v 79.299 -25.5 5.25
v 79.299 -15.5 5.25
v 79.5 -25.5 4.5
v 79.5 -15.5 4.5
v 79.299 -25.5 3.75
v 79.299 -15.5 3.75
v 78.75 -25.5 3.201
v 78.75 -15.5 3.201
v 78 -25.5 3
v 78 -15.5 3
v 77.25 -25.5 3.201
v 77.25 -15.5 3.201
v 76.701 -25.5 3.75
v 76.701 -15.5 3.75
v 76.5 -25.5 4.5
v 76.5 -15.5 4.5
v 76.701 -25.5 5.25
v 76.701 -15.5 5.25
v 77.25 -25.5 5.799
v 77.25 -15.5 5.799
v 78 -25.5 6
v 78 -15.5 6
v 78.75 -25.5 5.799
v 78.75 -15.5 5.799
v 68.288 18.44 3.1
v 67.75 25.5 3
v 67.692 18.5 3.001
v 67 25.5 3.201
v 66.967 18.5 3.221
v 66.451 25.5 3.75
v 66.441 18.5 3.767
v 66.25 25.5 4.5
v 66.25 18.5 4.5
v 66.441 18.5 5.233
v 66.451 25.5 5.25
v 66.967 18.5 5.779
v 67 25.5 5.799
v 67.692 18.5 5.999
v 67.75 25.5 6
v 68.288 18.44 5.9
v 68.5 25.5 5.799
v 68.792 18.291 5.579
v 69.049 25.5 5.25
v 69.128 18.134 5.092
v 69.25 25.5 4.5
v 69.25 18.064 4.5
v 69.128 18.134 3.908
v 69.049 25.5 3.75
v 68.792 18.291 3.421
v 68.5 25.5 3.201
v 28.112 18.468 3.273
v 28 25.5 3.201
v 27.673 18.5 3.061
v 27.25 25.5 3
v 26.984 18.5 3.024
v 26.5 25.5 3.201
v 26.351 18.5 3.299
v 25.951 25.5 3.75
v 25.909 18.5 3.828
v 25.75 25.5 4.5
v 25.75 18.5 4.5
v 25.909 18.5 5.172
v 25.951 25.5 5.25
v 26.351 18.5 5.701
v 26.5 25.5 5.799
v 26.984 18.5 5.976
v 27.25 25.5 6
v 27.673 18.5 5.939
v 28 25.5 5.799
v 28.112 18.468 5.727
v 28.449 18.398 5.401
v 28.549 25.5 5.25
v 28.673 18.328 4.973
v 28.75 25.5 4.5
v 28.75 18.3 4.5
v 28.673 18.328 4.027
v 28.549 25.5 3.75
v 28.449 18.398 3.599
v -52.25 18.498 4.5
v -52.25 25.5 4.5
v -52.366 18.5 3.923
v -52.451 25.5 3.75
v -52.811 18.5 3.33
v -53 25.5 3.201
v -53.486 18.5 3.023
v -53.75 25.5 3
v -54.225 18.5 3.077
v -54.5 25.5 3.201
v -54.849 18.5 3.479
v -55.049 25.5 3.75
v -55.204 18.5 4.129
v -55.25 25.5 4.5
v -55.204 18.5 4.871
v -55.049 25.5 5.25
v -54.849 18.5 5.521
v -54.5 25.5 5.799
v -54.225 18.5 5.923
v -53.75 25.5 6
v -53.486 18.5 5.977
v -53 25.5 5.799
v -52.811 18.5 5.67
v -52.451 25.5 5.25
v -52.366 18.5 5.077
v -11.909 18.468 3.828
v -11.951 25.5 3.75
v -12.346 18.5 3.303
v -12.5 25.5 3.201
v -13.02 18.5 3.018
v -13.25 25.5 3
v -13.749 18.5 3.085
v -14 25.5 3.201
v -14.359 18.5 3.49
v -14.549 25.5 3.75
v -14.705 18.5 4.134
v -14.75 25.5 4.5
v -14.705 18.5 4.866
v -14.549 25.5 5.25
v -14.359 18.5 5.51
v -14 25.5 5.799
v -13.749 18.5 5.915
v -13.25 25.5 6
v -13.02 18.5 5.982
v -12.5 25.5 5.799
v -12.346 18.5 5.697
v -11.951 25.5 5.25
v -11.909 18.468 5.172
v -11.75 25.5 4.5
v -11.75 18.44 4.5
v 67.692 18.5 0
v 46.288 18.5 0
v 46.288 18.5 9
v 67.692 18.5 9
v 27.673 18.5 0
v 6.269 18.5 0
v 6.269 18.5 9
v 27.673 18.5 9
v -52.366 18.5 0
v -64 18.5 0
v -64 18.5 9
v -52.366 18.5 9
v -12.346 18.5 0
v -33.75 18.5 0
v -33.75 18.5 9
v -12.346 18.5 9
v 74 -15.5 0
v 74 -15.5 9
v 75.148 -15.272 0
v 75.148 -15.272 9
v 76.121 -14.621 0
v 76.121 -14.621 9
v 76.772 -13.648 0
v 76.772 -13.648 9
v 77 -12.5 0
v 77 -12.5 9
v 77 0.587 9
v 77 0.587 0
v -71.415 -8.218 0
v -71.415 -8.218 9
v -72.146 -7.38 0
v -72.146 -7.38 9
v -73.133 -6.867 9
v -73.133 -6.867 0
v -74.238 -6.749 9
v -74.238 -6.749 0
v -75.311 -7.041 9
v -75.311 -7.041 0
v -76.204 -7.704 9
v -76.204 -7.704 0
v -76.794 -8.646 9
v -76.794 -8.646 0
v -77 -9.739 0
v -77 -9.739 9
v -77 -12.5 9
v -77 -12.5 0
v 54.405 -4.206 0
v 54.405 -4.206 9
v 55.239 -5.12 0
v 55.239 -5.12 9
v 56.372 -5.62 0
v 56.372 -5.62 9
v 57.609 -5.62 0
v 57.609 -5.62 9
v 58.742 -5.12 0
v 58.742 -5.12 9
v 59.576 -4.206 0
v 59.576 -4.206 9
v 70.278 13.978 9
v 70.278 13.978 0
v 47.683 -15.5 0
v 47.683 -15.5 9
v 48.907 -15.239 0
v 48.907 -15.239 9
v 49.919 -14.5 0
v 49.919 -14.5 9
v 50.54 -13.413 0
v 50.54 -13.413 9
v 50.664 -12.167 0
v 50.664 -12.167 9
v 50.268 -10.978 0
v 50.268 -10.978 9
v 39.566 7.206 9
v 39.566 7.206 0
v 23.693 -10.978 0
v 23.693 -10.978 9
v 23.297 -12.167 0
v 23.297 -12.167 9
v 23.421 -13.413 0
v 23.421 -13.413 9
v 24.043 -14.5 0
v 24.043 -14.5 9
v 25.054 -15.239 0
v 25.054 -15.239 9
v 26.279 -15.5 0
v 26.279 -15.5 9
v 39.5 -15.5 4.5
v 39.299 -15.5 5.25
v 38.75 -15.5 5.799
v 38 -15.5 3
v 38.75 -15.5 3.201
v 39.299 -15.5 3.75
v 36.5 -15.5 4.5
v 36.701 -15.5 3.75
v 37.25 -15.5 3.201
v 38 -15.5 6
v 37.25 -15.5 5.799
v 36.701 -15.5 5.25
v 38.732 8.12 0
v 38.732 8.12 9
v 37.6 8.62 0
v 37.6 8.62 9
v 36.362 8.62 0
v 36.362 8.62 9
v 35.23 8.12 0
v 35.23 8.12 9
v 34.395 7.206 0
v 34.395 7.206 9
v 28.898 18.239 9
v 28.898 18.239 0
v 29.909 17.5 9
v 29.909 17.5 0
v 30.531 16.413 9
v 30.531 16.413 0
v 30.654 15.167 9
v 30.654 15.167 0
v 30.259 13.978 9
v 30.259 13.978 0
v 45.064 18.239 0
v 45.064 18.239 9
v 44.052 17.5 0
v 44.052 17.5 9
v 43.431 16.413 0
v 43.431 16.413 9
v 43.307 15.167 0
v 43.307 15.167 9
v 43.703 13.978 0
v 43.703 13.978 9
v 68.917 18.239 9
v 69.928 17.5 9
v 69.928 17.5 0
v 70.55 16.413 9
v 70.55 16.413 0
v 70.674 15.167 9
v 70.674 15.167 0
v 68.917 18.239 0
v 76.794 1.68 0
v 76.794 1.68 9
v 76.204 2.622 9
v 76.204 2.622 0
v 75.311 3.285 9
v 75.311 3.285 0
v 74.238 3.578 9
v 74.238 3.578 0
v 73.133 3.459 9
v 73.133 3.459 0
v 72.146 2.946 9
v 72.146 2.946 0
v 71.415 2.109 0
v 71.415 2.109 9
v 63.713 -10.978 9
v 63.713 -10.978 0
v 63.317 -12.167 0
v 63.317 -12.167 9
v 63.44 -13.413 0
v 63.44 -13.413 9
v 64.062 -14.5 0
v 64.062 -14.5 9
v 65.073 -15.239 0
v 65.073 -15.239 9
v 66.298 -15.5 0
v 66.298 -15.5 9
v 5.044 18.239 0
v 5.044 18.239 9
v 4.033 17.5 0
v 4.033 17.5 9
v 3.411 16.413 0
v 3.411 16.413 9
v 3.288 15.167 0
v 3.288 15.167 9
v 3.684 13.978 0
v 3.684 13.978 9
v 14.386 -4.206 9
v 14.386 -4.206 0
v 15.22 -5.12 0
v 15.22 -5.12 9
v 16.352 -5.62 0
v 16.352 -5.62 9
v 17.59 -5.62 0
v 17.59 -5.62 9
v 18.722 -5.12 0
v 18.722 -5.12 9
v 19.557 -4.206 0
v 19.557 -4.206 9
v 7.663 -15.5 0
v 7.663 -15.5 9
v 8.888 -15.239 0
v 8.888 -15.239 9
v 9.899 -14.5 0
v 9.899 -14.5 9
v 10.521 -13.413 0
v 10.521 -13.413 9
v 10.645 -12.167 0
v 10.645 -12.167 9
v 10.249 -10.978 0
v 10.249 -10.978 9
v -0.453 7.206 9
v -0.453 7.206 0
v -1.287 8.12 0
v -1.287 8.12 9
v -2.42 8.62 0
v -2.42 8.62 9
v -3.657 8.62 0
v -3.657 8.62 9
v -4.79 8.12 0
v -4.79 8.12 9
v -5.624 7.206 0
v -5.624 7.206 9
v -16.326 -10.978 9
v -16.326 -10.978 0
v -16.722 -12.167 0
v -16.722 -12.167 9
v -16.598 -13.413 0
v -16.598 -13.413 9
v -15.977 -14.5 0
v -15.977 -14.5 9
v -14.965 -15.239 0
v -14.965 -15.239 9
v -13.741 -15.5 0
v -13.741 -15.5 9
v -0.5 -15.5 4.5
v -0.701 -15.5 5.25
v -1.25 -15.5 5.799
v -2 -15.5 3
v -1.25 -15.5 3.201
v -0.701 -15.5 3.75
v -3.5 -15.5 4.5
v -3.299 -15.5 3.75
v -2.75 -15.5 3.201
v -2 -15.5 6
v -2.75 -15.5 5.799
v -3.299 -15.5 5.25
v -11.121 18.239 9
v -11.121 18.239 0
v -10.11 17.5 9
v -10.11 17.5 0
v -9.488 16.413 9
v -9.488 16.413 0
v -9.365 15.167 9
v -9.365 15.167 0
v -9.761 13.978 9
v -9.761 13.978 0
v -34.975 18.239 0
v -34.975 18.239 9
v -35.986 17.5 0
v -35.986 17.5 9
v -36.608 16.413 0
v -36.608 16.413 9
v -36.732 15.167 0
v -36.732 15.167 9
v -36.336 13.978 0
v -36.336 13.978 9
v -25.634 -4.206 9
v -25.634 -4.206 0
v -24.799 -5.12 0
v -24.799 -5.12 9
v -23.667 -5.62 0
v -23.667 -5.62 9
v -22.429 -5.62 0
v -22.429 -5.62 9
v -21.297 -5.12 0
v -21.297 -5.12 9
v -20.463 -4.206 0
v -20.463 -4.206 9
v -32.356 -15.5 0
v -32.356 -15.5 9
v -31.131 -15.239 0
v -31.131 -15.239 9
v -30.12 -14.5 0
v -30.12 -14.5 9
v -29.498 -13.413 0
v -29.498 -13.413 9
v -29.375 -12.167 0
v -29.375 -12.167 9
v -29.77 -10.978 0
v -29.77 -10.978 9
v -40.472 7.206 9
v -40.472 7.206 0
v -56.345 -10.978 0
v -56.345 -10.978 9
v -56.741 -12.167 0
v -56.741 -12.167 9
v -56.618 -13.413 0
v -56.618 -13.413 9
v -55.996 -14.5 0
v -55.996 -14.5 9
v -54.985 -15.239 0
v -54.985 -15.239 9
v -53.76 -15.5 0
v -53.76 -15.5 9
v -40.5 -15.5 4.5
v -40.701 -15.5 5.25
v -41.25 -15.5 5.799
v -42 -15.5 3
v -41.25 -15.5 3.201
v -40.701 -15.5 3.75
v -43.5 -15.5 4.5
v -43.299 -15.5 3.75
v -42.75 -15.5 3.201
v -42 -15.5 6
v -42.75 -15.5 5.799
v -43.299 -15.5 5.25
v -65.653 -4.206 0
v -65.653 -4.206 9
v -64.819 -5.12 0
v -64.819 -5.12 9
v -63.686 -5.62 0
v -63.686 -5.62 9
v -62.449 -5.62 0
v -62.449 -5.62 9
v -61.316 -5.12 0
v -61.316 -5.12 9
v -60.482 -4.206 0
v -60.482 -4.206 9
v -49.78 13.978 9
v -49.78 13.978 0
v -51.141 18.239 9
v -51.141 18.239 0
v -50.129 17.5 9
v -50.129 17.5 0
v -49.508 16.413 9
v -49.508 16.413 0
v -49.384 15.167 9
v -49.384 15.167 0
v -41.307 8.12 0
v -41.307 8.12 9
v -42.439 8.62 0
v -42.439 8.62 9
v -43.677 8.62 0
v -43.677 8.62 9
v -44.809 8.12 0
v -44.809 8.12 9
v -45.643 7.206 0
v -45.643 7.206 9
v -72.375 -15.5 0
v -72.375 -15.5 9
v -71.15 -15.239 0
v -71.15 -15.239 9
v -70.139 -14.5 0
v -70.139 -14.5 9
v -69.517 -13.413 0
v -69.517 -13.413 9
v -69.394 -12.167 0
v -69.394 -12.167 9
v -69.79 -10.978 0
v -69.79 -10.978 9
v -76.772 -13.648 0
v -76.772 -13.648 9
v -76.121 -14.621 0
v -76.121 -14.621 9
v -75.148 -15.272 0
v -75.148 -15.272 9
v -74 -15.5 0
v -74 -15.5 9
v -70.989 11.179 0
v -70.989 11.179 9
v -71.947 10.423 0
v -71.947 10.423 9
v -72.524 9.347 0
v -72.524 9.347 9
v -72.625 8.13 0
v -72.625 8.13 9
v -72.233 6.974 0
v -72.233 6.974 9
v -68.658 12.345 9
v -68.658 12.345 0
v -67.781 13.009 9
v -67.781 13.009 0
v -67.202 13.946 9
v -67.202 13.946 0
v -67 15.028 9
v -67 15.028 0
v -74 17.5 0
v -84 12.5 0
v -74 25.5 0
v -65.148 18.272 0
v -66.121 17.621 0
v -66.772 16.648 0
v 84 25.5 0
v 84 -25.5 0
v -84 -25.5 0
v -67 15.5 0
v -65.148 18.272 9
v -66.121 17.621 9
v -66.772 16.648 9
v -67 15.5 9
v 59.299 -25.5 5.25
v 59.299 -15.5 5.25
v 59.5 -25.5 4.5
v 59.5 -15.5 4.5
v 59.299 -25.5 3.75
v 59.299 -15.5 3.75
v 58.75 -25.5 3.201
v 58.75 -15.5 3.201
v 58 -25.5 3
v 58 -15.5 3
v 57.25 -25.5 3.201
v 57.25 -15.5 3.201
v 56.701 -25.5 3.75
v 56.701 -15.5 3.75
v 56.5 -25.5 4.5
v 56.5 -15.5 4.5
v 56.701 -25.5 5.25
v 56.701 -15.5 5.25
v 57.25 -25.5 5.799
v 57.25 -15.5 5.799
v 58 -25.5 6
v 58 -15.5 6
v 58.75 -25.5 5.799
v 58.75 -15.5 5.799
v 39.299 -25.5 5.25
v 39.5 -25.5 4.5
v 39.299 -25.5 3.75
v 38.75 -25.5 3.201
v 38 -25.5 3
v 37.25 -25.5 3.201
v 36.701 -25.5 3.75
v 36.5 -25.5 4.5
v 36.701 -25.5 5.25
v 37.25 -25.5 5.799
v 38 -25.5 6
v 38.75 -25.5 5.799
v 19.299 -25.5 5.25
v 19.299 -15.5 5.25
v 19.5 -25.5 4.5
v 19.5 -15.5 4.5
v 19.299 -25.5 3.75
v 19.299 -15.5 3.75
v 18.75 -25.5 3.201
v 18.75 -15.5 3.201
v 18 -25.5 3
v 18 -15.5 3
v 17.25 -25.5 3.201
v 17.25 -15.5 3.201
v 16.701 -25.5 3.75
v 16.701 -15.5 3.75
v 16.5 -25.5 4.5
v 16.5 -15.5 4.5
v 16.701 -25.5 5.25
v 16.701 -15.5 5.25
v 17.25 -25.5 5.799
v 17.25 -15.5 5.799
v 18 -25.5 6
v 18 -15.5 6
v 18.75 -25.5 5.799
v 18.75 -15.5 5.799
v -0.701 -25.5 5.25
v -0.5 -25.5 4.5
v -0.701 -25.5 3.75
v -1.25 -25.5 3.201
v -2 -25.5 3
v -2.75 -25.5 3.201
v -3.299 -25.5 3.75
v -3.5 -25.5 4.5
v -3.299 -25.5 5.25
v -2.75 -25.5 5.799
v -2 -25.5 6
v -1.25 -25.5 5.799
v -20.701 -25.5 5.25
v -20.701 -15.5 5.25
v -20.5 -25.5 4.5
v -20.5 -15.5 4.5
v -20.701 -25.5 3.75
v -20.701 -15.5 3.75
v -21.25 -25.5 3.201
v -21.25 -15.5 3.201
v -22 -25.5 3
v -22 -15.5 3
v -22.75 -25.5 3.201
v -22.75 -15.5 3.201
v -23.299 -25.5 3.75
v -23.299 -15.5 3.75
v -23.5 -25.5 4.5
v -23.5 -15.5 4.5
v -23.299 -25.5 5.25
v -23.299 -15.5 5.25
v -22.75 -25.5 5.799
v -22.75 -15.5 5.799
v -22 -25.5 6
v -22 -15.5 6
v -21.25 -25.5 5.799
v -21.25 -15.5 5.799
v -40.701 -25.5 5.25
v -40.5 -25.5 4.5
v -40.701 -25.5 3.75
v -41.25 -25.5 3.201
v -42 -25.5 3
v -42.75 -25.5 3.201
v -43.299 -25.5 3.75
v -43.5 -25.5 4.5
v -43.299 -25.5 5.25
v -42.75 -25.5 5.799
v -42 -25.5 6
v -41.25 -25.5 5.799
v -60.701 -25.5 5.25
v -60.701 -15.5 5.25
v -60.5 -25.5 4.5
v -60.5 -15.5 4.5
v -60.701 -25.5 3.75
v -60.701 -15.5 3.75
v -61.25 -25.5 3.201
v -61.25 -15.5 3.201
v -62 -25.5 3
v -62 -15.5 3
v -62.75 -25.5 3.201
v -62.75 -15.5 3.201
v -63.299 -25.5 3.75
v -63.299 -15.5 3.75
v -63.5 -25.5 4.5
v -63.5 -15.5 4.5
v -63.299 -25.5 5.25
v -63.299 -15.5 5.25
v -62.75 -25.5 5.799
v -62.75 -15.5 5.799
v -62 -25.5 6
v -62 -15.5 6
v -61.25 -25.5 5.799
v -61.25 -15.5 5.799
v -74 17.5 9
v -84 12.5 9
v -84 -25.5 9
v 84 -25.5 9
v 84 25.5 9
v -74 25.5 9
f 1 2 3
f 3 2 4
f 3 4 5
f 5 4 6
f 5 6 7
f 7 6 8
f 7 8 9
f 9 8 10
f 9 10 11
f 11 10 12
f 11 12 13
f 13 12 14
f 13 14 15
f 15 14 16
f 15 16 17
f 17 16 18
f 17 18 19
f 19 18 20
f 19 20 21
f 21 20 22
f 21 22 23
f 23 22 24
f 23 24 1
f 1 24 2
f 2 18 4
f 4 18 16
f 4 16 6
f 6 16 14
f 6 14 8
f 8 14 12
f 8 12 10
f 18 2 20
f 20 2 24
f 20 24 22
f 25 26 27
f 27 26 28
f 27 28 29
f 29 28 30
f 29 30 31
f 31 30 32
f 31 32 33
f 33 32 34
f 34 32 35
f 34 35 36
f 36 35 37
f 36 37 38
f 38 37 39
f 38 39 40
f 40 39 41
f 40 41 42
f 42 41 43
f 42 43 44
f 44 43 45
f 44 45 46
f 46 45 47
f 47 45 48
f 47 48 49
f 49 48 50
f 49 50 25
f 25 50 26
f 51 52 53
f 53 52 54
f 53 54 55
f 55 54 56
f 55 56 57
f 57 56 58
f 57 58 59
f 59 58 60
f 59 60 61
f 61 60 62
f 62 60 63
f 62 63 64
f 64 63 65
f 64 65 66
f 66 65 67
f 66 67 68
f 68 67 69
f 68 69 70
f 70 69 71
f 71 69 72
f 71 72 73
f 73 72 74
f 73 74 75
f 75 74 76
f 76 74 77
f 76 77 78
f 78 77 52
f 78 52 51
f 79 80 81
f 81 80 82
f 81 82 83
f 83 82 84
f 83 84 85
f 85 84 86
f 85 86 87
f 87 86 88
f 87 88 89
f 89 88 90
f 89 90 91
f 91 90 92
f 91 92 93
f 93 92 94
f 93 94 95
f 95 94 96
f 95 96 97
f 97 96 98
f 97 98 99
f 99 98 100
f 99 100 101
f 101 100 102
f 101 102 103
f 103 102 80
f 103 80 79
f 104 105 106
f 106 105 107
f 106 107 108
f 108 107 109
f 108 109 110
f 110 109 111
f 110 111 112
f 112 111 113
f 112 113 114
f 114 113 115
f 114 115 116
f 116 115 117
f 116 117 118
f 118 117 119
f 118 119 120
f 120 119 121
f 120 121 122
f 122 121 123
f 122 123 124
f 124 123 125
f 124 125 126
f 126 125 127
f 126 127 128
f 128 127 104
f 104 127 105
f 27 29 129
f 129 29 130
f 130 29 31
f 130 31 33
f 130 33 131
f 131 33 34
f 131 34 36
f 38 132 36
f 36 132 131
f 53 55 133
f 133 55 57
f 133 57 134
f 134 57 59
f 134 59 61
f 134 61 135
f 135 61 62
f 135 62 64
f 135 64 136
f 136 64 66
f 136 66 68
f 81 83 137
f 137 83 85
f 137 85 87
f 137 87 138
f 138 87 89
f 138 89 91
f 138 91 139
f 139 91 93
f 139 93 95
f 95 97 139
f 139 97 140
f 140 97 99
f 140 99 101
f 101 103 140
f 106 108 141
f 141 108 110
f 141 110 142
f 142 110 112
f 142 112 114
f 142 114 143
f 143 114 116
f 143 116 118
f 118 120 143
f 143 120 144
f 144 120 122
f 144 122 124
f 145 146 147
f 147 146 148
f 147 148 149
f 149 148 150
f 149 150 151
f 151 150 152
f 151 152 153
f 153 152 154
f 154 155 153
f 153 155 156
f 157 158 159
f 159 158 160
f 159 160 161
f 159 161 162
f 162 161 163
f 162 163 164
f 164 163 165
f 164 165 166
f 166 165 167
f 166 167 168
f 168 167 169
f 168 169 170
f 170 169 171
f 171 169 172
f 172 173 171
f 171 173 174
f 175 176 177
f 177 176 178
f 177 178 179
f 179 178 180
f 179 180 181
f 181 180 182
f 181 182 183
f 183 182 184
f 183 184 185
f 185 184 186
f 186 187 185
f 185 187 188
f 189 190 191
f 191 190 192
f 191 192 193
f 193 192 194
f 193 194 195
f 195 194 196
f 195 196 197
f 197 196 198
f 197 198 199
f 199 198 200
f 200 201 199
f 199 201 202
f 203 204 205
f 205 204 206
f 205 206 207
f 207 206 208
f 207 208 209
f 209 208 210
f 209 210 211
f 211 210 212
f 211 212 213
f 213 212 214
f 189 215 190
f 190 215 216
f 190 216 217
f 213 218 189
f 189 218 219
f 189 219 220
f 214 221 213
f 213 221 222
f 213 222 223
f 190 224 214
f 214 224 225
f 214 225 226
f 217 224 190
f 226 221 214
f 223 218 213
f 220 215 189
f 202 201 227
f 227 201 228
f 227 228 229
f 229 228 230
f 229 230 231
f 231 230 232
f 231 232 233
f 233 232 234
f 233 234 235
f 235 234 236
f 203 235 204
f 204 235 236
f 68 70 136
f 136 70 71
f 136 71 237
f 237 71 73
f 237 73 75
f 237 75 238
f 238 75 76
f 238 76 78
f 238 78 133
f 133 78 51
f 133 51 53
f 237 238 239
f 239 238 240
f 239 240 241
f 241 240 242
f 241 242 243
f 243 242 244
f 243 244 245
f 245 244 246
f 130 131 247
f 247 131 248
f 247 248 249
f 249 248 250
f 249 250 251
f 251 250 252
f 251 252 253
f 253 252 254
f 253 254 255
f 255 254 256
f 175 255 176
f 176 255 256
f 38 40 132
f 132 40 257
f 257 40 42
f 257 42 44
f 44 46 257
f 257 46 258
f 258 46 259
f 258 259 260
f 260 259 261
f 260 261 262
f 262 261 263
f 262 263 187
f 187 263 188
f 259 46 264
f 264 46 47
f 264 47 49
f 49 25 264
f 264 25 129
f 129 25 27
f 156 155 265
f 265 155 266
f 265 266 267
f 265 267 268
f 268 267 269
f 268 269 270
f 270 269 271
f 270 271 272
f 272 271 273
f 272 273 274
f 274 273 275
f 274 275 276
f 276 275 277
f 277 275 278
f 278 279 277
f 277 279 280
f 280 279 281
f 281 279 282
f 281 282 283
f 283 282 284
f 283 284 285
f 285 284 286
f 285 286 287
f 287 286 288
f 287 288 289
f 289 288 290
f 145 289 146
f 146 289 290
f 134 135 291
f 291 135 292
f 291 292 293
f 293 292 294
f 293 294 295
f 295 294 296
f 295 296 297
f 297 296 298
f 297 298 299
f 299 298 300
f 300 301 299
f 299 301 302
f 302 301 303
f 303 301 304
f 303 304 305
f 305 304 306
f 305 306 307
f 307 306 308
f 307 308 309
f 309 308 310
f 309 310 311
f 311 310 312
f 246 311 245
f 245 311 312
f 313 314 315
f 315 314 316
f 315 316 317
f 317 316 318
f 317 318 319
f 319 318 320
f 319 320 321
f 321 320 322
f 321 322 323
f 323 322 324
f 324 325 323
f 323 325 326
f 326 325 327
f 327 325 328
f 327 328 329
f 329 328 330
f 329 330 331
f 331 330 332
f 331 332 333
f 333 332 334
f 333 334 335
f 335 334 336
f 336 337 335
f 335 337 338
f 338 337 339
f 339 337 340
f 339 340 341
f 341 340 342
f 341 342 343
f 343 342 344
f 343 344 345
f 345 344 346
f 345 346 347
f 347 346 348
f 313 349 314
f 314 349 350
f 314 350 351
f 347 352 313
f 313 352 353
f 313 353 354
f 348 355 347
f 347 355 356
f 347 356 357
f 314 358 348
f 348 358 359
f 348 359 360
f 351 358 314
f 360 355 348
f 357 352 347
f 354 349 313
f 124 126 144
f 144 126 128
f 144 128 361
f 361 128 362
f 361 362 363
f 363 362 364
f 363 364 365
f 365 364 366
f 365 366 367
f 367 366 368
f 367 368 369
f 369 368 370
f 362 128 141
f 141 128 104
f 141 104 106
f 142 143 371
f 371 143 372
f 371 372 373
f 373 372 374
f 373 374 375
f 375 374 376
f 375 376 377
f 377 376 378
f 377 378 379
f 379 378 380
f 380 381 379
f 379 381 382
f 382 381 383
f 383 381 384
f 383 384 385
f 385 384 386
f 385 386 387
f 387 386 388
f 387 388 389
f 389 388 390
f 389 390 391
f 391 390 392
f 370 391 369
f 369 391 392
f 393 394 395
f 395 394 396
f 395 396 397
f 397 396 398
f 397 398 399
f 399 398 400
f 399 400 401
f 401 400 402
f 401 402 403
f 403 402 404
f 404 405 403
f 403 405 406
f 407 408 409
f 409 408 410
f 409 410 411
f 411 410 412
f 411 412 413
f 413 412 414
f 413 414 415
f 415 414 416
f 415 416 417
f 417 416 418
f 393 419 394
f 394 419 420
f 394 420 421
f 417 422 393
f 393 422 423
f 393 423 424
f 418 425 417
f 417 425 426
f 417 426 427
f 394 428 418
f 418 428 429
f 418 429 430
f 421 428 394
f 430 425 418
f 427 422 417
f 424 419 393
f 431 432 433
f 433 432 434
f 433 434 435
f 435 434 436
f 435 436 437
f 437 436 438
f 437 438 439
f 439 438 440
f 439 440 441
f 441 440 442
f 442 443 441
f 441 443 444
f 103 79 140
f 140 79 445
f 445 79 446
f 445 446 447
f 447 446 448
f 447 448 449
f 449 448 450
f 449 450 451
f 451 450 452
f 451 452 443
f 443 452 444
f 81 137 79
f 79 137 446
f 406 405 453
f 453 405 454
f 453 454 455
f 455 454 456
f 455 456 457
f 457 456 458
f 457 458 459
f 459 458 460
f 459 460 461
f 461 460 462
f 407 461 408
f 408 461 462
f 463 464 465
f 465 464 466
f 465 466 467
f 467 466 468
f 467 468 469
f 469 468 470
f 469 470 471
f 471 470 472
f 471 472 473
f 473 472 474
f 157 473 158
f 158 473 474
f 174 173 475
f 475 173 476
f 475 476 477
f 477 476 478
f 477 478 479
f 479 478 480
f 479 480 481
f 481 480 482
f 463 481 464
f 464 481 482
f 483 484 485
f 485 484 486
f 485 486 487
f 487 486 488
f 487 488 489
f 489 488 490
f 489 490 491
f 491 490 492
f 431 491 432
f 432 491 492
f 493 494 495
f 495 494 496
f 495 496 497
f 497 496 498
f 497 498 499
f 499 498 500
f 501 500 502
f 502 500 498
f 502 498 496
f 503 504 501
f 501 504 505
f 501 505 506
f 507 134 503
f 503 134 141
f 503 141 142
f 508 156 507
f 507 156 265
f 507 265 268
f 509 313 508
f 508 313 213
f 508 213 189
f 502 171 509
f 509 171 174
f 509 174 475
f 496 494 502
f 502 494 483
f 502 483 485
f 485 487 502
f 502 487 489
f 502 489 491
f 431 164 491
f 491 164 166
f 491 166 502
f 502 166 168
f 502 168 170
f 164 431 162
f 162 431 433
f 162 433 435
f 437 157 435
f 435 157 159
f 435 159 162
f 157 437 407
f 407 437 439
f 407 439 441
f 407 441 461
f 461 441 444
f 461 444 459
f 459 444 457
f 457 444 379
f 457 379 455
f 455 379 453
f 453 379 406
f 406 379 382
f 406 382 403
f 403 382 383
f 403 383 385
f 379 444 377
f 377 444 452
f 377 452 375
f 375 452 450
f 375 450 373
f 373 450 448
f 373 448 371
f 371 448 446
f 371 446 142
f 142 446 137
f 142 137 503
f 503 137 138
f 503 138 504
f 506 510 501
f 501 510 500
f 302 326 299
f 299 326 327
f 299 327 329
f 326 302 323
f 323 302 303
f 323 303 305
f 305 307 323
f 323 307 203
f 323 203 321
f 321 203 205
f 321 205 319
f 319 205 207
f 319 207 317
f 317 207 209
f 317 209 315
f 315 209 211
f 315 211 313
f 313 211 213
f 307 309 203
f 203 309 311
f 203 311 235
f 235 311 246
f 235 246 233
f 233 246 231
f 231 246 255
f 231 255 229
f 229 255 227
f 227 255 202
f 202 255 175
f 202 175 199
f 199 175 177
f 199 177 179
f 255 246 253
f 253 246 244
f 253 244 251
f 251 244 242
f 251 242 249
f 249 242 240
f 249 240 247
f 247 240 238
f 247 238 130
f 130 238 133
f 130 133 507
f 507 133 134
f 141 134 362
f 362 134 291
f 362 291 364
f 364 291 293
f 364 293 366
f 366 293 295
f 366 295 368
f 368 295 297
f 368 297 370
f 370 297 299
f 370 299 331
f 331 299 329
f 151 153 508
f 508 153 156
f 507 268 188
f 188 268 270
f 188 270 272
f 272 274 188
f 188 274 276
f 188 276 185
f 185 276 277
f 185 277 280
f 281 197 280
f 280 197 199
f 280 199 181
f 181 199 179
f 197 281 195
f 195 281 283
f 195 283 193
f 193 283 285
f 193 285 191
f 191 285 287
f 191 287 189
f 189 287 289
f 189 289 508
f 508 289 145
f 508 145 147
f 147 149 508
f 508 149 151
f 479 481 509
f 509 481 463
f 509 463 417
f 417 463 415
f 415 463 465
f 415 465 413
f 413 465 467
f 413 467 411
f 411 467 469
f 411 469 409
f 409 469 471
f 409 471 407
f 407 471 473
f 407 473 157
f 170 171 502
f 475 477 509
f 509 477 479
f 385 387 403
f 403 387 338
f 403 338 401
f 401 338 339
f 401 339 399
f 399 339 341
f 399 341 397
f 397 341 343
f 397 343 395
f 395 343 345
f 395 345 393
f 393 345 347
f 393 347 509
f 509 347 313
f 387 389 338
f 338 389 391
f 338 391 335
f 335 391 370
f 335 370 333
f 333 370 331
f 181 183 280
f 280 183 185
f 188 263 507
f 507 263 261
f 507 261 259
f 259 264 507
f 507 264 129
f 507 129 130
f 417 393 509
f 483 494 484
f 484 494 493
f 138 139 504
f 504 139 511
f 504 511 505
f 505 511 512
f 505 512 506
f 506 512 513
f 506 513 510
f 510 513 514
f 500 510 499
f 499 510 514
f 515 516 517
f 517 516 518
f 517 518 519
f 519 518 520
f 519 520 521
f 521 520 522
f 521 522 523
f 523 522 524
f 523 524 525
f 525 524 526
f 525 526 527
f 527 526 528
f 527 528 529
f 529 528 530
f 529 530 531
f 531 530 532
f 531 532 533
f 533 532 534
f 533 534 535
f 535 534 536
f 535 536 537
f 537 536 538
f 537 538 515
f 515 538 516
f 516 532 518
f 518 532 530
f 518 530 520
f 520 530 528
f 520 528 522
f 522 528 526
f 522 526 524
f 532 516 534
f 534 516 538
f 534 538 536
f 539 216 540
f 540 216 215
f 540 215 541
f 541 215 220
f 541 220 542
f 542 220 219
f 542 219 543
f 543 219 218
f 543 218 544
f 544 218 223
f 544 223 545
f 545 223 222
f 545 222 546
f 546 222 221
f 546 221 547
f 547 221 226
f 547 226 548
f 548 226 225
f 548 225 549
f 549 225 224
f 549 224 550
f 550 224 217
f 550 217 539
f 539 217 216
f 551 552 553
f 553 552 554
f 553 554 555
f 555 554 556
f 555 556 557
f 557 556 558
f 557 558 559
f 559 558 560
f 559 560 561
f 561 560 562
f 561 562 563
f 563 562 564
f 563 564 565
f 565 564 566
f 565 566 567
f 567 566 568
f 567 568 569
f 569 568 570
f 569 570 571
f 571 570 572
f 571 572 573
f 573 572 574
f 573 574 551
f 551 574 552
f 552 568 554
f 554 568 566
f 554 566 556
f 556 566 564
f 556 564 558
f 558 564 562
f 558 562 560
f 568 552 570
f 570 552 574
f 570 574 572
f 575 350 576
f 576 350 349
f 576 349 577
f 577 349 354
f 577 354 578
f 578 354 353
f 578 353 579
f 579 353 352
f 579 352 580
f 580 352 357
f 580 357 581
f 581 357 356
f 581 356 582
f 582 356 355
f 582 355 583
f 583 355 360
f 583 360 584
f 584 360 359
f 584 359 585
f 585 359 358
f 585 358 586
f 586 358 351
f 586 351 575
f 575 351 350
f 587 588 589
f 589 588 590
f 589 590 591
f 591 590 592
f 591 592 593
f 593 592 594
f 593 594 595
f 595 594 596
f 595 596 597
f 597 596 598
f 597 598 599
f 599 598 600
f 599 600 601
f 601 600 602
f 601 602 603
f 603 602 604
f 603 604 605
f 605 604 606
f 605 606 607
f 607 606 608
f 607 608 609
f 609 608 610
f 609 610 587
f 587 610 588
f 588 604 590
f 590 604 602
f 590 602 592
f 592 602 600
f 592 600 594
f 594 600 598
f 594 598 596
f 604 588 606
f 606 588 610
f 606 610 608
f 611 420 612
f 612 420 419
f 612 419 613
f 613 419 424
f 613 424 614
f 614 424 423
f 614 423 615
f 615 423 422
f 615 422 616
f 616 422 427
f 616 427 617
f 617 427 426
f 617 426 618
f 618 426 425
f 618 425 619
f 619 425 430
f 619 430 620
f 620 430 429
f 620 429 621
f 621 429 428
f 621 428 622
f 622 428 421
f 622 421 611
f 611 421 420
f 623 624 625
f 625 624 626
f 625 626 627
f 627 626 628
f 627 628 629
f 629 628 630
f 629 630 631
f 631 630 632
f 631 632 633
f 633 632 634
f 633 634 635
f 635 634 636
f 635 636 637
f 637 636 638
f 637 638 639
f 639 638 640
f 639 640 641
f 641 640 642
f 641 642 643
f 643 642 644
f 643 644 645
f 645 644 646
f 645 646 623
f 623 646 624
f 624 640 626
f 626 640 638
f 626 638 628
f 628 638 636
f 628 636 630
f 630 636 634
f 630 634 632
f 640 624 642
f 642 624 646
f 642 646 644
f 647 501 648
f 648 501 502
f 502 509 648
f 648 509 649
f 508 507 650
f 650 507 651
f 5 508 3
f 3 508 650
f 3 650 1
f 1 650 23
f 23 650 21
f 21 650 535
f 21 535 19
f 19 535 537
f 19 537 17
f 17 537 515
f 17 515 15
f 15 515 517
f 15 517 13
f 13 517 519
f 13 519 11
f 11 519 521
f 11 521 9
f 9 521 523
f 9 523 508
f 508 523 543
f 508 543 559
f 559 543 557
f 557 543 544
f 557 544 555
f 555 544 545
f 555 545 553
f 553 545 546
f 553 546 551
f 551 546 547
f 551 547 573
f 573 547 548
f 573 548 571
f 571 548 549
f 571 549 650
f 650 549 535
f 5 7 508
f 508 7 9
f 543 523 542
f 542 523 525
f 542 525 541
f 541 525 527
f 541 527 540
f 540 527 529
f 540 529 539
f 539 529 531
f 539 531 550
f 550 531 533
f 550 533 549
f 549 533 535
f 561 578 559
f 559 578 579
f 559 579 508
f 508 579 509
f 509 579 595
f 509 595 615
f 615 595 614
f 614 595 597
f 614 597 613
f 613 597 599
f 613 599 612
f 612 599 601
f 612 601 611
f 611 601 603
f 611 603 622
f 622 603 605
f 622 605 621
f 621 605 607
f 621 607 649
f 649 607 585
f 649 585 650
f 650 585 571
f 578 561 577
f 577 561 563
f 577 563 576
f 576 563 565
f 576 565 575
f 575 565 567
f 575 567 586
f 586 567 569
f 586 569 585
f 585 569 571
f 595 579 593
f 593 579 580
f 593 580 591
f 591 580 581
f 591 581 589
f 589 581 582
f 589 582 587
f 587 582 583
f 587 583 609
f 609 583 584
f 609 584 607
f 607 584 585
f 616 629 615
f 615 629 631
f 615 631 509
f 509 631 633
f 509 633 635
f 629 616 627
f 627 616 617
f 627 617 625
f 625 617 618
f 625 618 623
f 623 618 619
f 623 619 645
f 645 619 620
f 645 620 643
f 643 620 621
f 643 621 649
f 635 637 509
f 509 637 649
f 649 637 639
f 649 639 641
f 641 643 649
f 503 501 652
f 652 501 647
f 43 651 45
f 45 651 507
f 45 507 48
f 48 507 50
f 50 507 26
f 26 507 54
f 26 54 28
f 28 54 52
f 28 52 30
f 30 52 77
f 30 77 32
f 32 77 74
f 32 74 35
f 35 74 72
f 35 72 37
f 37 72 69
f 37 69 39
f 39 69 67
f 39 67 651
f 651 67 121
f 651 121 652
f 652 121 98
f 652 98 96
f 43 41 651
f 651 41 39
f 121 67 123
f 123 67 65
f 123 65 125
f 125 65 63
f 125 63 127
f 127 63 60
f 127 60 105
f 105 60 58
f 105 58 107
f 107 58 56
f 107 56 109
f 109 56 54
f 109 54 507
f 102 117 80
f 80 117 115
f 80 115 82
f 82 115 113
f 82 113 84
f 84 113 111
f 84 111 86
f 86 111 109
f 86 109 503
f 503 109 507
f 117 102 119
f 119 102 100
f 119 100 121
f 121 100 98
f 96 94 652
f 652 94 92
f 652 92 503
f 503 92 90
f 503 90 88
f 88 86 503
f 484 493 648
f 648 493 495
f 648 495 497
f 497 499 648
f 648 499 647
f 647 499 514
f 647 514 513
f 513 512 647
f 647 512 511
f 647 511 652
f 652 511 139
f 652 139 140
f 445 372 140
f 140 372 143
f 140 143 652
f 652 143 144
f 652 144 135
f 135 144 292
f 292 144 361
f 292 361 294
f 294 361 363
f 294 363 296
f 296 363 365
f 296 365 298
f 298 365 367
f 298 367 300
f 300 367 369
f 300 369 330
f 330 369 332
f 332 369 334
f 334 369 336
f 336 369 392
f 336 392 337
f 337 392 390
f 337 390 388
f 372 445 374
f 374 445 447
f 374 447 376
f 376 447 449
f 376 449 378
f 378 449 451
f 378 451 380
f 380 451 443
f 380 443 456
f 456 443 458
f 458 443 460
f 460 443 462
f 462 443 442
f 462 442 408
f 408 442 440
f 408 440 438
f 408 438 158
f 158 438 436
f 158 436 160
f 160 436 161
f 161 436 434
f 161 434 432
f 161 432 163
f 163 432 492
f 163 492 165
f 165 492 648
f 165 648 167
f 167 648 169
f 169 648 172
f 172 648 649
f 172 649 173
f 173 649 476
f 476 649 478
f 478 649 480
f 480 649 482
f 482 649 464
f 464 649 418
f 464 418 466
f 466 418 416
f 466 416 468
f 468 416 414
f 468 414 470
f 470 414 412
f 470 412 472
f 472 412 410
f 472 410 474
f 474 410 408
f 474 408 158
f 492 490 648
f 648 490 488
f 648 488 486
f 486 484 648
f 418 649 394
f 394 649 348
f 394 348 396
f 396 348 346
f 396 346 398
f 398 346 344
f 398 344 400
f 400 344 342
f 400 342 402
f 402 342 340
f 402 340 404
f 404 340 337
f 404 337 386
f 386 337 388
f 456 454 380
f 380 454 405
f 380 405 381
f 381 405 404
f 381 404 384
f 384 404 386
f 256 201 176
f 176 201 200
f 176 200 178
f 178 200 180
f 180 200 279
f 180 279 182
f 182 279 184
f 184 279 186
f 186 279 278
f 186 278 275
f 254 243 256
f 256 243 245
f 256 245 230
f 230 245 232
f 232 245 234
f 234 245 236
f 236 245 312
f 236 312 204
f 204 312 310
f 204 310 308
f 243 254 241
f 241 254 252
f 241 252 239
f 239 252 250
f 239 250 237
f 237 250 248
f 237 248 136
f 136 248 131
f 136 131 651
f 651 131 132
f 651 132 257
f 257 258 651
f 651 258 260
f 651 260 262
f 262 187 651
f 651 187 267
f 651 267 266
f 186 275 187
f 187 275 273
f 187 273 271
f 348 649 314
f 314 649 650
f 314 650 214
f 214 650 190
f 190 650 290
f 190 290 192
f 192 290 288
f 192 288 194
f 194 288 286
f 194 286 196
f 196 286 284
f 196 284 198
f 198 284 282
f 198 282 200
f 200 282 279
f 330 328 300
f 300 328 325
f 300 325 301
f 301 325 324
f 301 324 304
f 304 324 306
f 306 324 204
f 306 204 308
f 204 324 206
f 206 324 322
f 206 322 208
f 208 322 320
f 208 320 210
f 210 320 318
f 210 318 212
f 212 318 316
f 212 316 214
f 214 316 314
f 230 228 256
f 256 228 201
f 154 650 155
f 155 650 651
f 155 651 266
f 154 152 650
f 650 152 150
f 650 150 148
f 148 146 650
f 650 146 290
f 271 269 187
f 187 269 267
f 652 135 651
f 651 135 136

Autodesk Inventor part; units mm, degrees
ref_plane "YZ Plane" through (0, 0, 0) normal (1, 0, 0) x (0, 1, 0)
ref_plane "XZ Plane" through (0, 0, 0) normal (0, 1, 0) x (-1, 0, 0)
ref_plane "XY Plane" through (0, 0, 0) normal (0, 0, 1) x (1, 0, 0)
sketch "Sketch1" plane through (0, 0, 0) normal (0, 0, 1) x (1, 0, 0)
  line L0 (-84, -25.5) -> (84, -25.5)
  line L1 (84, -25.5) -> (84, 25.5)
  line L2 (84, 25.5) -> (-84, 25.5)
  line L3 (-84, 25.5) -> (-84, -25.5)
  line L4 (-84, -25.5) -> (84, 25.5) construction
  line L5 (84, -25.5) -> (-84, 25.5) construction
  line L6 (-84, 17.5) -> (-74, 17.5)
  line L7 (-74, 17.5) -> (-74, 25.5)
  point P0 (0, 0)
  dimension "d0" = 168
  dimension "d1" = 51
  dimension "d2" = 10
  dimension "d3" = 8
extrude "Extrusion1" add sketch "Sketch1" along normal blind 9 contours L3 L6 L7 L2 L1 L0
chamfer "Chamfer1" distance 10 distance2 5 1 edges at (-84, 17.5, 4.5) measured on face at (-77.3333, 17.5, 3)
sketch "Sketch2" plane through (-84, -25.5, 0) normal (0, -1, 0) x (1, 0, 0)
  line L0 (0, 0) -> (0, 9) projected
  line L1 (0, 0) -> (168, 0) projected
  point P0 (84, 0)
  point P1 (22, 4.5)
  point P2 (42, 4.5)
  point P3 (62, 4.5)
  point P4 (82, 4.5)
  point P5 (102, 4.5)
  point P6 (122, 4.5)
  point P7 (142, 4.5)
  point P8 (162, 4.5)
  dimension "d9" = 22
  dimension "d10" = 4.5
  dimension "d13" = 20
hole "Hole1" at (-62, -25.5, 4.5) at (-42, -25.5, 4.5) at (-22, -25.5, 4.5) at (-2, -25.5, 4.5) at (18, -25.5, 4.5) at (38, -25.5, 4.5) at (58, -25.5, 4.5) direction (0, 1, 0) diameter 3 depth 10
sketch "Sketch3" plane through (0, 0, 9) normal (0, 0, 1) x (1, 0, 0)
  line L0 (-63.5, -15.5) -> (-60.5, -15.5) projected
  line L1 (-84, 12.5) -> (-84, -25.5) projected
  line L2 (-84, -15.5) -> (84, -15.5)
  line L3 (84, -25.5) -> (84, 25.5) projected
  line L4 (-84, 12.5) -> (-74, 17.5) projected
  line L5 (-84, 12.5) -> (-84, -25.5) projected
  line L6 (-84, -25.5) -> (84, -25.5) projected
  line L7 (84, -25.5) -> (84, 25.5) projected
  line L8 (84, 25.5) -> (-74, 25.5) projected
  line L9 (-74, 25.5) -> (-74, 17.5) projected
  line L10 (-67, 18.5) -> (77, 18.5)
  line L11 (77, 18.5) -> (77, -18.5)
  line L12 (77, -18.5) -> (-77, -18.5)
  line L13 (-77, -18.5) -> (-77, 8.1738)
  line L14 (-77, 8.1738) -> (-67, 13.1738)
  line L15 (-67, 13.1738) -> (-67, 18.5)
  line L16 (77, 18.5) -> (56.9904, -15.5) construction
  line L17 (36.9807, 18.5) -> (56.9904, -15.5) construction
  line L18 (16.9711, -15.5) -> (36.9807, 18.5) construction
  line L19 (-3.0386, 18.5) -> (16.9711, -15.5) construction
  line L20 (-23.0482, -15.5) -> (-3.0386, 18.5) construction
  line L21 (-23.0482, -15.5) -> (-43.0579, 18.5) construction
  line L22 (-63.0675, -15.5) -> (-43.0579, 18.5) construction
  line L23 (-77, 8.1738) -> (-63.0675, -15.5) construction
  line L24 (-63.5, -15.5) -> (-60.5, -15.5) projected
  line L25 (-63.0675, -15.5) -> (-83.0772, 18.5) construction
  line L26 (-77, 1.2732) -> (-67.1287, -15.5)
  line L27 (-73.8622, 9.7427) -> (-59.0064, -15.5)
  line L28 (-47.119, 18.5) -> (-67.1287, -15.5)
  line L29 (-38.9968, 18.5) -> (-59.0064, -15.5)
  line L30 (-47.119, 18.5) -> (-27.1094, -15.5)
  line L31 (-38.9968, 18.5) -> (-18.9871, -15.5)
  line L32 (-7.0997, 18.5) -> (-27.1094, -15.5)
  line L33 (-18.9871, -15.5) -> (1.0225, 18.5)
  line L34 (-7.0997, 18.5) -> (12.9099, -15.5)
  line L35 (1.0225, 18.5) -> (21.0322, -15.5)
  line L36 (12.9099, -15.5) -> (32.9196, 18.5)
  line L37 (41.0418, 18.5) -> (61.0515, -15.5)
  line L38 (77, 11.5994) -> (61.0515, -15.5)
  line L39 (32.9196, 18.5) -> (52.9292, -15.5)
  line L40 (41.0418, 18.5) -> (21.0322, -15.5)
  line L41 (72.9389, 18.5) -> (52.9292, -15.5)
  point P0 (0, 0)
  point P1 (-73.0724, 1.5)
  point P2 (-72.0643, -7.1134)
  point P3 (26.9759, 1.5)
  point P4 (77, -15.5)
  point P5 (-3.0386, 11.5994)
  point P6 (56.9904, -8.5994)
  point P7 (36.9807, 11.5994)
  point P8 (16.9711, -8.5994)
  point P9 (-23.0482, -8.5994)
  point P10 (-43.0579, 11.5994)
  point P11 (-77, -15.5)
  point P12 (-63.0675, -8.5994)
  dimension "d25" = 7
  dimension "d30" = 3.5
  dimension "d31" = 3.5
  dimension "d32" = 3.5
  dimension "d33" = 3.5
  dimension "d34" = 3.5
  dimension "d35" = 3.5
  dimension "d36" = 3.5
  dimension "d37" = 3.5
  dimension "d38" = 3.5
  dimension "d39" = 3.5
  dimension "d40" = 3.5
  dimension "d41" = 3.5
  dimension "d42" = 3.5
  dimension "d43" = 3.5
  dimension "d44" = 3.5
  dimension "d46" = 3.5
extrude "Extrusion2" cut sketch "Sketch3" against normal through all contours L2 L13 L26 | L29 L30 L2 | L27 L14 L15 L10 L28 | L33 L34 L2 | L31 L10 L32 | L2 L38 L11 | L40 L39 L2 | L35 L10 L36 | L37 L10 L41
fillet "Fillet1" radius 3 29 edges at (-67, 18.5, 4.5) (-67, 13.1738, 4.5) (-73.8622, 9.7427, 4.5) (-77, -15.5, 4.5) (-67.1287, -15.5, 4.5) (-43.0579, 11.5994, 4.5) (-47.119, 18.5, 4.5) (-63.0675, -8.5994, 4.5) (-59.0064, -15.5, 4.5) (-27.1094, -15.5, 4.5) (-23.0482, -8.5994, 4.5) (-38.9968, 18.5, 4.5) (-7.0997, 18.5, 4.5) (-18.9871, -15.5, 4.5) (-3.0386, 11.5994, 4.5) (12.9099, -15.5, 4.5) (16.9711, -8.5994, 4.5) (1.0225, 18.5, 4.5) (61.0515, -15.5, 4.5) (77, 11.5994, 4.5) (72.9389, 18.5, 4.5) (41.0418, 18.5, 4.5) (32.9196, 18.5, 4.5) (36.9807, 11.5994, 4.5) (21.0322, -15.5, 4.5) (52.9292, -15.5, 4.5) (56.9904, -8.5994, 4.5) (-77, 1.2732, 4.5) (77, -15.5, 4.5)
sketch "Sketch4" plane through (-74, 25.5, 0) normal (0, 1, 0) x (1, 0, 0)
  point P0 (74, 0)
sketch "Sketch5" plane through (-74, 25.5, 0) normal (0, 1, 0) x (1, 0, 0)
  line L0 (158, 0) -> (158, -9) projected
  line L1 (0, 0) -> (0, -9) projected
  line L2 (158, 0) -> (0, 0) projected
  line L3 (-10, 0) -> (-10, -9) projected
  point P0 (74, 0)
  point P1 (20.2499, -4.5)
  point P2 (60.7499, -4.5)
  point P3 (101.2499, -4.5)
  point P4 (141.7499, -4.5)
  point P5 (0, -4.5)
  dimension "d50" = 158
  dimension "d52" = 40.5
  dimension "d53" = 40.5
  dimension "d54" = 40.5
  dimension "d55" = 4.5
  dimension "d79" = 20.2499
hole "Hole2" at (-13.2501, 25.5, 4.5) at (-53.7501, 25.5, 4.5) at (27.2499, 25.5, 4.5) at (67.7499, 25.5, 4.5) direction (0, -1, 0) diameter 3 depth 10
sketch "Sketch6" plane through (0, 0, 9) normal (0, 0, 1) x (1, 0, 0)
  point P0 (0, 0)
sketch "Sketch8" plane through (-74, 25.5, 0) normal (0, 1, 0) x (1, 0, 0)
  circle A0 centre (141.7499, -4.5) radius 1.5 projected
  circle A1 centre (101.2499, -4.5) radius 1.5 projected
  circle A2 centre (20.2499, -4.5) radius 1.5 projected
  circle A3 centre (60.7499, -4.5) radius 1.5 projected
  line L0 (158, 0) -> (0, 0) projected
  line L1 (0, 0) -> (0, -9) projected
  line L2 (158, -9) -> (0, -9) projected
  line L3 (158, 0) -> (158, -9) projected
  line L4 (154, 0) -> (154, -9)
  point P0 (74, 0)
  point P1 (158, -4.5)
  point P2 (154, -4.5)
  dimension "d67" = 4
extrude "Extrusion4" [suppressed]
sketch "Sketch9" plane through (-84, -25.5, 0) normal (0, -1, 0) x (1, 0, 0)
  circle A0 centre (142, 4.5) radius 1.5 projected
  circle A1 centre (122, 4.5) radius 1.5 projected
  circle A2 centre (102, 4.5) radius 1.5 projected
  circle A3 centre (82, 4.5) radius 1.5 projected
  circle A4 centre (62, 4.5) radius 1.5 projected
  circle A5 centre (42, 4.5) radius 1.5 projected
  circle A6 centre (22, 4.5) radius 1.5 projected
  line L0 (0, 0) -> (168, 0) projected
  line L1 (168, 0) -> (168, 9) projected
  line L2 (0, 9) -> (168, 9) projected
  line L3 (0, 0) -> (0, 9) projected
  point P0 (84, 0)
  point P1 (162, 4.5)
  dimension "d70" = 20
hole "Hole3" at (78, -25.5, 4.5) direction (0, 1, 0) diameter 3 depth 10
equation "\"d30\" = 0.5 * d25"
equation "\"d31\" = 0.5 * d25"
equation "\"d32\" = 0.5 * d25"
equation "\"d33\" = 0.5 * d25"
equation "\"d34\" = 0.5 * d25"
equation "\"d35\" = 0.5 * d25"
equation "\"d36\" = 0.5 * d25"
equation "\"d37\" = 0.5 * d25"
equation "\"d38\" = 0.5 * d25"
equation "\"d39\" = 0.5 * d25"
equation "\"d40\" = 0.5 * d25"
equation "\"d41\" = 0.5 * d25"
equation "\"d42\" = 0.5 * d25"
equation "\"d43\" = 0.5 * d25"
equation "\"d44\" = 0.5 * d25"
equation "\"d46\" = 0.5 * d25"
equation "\"d53\" = d52"
equation "\"d54\" = d53"
equation "\"d51\" = 0.125 * d50"
properties part number "RightTruss" material "ABS Plastic"
